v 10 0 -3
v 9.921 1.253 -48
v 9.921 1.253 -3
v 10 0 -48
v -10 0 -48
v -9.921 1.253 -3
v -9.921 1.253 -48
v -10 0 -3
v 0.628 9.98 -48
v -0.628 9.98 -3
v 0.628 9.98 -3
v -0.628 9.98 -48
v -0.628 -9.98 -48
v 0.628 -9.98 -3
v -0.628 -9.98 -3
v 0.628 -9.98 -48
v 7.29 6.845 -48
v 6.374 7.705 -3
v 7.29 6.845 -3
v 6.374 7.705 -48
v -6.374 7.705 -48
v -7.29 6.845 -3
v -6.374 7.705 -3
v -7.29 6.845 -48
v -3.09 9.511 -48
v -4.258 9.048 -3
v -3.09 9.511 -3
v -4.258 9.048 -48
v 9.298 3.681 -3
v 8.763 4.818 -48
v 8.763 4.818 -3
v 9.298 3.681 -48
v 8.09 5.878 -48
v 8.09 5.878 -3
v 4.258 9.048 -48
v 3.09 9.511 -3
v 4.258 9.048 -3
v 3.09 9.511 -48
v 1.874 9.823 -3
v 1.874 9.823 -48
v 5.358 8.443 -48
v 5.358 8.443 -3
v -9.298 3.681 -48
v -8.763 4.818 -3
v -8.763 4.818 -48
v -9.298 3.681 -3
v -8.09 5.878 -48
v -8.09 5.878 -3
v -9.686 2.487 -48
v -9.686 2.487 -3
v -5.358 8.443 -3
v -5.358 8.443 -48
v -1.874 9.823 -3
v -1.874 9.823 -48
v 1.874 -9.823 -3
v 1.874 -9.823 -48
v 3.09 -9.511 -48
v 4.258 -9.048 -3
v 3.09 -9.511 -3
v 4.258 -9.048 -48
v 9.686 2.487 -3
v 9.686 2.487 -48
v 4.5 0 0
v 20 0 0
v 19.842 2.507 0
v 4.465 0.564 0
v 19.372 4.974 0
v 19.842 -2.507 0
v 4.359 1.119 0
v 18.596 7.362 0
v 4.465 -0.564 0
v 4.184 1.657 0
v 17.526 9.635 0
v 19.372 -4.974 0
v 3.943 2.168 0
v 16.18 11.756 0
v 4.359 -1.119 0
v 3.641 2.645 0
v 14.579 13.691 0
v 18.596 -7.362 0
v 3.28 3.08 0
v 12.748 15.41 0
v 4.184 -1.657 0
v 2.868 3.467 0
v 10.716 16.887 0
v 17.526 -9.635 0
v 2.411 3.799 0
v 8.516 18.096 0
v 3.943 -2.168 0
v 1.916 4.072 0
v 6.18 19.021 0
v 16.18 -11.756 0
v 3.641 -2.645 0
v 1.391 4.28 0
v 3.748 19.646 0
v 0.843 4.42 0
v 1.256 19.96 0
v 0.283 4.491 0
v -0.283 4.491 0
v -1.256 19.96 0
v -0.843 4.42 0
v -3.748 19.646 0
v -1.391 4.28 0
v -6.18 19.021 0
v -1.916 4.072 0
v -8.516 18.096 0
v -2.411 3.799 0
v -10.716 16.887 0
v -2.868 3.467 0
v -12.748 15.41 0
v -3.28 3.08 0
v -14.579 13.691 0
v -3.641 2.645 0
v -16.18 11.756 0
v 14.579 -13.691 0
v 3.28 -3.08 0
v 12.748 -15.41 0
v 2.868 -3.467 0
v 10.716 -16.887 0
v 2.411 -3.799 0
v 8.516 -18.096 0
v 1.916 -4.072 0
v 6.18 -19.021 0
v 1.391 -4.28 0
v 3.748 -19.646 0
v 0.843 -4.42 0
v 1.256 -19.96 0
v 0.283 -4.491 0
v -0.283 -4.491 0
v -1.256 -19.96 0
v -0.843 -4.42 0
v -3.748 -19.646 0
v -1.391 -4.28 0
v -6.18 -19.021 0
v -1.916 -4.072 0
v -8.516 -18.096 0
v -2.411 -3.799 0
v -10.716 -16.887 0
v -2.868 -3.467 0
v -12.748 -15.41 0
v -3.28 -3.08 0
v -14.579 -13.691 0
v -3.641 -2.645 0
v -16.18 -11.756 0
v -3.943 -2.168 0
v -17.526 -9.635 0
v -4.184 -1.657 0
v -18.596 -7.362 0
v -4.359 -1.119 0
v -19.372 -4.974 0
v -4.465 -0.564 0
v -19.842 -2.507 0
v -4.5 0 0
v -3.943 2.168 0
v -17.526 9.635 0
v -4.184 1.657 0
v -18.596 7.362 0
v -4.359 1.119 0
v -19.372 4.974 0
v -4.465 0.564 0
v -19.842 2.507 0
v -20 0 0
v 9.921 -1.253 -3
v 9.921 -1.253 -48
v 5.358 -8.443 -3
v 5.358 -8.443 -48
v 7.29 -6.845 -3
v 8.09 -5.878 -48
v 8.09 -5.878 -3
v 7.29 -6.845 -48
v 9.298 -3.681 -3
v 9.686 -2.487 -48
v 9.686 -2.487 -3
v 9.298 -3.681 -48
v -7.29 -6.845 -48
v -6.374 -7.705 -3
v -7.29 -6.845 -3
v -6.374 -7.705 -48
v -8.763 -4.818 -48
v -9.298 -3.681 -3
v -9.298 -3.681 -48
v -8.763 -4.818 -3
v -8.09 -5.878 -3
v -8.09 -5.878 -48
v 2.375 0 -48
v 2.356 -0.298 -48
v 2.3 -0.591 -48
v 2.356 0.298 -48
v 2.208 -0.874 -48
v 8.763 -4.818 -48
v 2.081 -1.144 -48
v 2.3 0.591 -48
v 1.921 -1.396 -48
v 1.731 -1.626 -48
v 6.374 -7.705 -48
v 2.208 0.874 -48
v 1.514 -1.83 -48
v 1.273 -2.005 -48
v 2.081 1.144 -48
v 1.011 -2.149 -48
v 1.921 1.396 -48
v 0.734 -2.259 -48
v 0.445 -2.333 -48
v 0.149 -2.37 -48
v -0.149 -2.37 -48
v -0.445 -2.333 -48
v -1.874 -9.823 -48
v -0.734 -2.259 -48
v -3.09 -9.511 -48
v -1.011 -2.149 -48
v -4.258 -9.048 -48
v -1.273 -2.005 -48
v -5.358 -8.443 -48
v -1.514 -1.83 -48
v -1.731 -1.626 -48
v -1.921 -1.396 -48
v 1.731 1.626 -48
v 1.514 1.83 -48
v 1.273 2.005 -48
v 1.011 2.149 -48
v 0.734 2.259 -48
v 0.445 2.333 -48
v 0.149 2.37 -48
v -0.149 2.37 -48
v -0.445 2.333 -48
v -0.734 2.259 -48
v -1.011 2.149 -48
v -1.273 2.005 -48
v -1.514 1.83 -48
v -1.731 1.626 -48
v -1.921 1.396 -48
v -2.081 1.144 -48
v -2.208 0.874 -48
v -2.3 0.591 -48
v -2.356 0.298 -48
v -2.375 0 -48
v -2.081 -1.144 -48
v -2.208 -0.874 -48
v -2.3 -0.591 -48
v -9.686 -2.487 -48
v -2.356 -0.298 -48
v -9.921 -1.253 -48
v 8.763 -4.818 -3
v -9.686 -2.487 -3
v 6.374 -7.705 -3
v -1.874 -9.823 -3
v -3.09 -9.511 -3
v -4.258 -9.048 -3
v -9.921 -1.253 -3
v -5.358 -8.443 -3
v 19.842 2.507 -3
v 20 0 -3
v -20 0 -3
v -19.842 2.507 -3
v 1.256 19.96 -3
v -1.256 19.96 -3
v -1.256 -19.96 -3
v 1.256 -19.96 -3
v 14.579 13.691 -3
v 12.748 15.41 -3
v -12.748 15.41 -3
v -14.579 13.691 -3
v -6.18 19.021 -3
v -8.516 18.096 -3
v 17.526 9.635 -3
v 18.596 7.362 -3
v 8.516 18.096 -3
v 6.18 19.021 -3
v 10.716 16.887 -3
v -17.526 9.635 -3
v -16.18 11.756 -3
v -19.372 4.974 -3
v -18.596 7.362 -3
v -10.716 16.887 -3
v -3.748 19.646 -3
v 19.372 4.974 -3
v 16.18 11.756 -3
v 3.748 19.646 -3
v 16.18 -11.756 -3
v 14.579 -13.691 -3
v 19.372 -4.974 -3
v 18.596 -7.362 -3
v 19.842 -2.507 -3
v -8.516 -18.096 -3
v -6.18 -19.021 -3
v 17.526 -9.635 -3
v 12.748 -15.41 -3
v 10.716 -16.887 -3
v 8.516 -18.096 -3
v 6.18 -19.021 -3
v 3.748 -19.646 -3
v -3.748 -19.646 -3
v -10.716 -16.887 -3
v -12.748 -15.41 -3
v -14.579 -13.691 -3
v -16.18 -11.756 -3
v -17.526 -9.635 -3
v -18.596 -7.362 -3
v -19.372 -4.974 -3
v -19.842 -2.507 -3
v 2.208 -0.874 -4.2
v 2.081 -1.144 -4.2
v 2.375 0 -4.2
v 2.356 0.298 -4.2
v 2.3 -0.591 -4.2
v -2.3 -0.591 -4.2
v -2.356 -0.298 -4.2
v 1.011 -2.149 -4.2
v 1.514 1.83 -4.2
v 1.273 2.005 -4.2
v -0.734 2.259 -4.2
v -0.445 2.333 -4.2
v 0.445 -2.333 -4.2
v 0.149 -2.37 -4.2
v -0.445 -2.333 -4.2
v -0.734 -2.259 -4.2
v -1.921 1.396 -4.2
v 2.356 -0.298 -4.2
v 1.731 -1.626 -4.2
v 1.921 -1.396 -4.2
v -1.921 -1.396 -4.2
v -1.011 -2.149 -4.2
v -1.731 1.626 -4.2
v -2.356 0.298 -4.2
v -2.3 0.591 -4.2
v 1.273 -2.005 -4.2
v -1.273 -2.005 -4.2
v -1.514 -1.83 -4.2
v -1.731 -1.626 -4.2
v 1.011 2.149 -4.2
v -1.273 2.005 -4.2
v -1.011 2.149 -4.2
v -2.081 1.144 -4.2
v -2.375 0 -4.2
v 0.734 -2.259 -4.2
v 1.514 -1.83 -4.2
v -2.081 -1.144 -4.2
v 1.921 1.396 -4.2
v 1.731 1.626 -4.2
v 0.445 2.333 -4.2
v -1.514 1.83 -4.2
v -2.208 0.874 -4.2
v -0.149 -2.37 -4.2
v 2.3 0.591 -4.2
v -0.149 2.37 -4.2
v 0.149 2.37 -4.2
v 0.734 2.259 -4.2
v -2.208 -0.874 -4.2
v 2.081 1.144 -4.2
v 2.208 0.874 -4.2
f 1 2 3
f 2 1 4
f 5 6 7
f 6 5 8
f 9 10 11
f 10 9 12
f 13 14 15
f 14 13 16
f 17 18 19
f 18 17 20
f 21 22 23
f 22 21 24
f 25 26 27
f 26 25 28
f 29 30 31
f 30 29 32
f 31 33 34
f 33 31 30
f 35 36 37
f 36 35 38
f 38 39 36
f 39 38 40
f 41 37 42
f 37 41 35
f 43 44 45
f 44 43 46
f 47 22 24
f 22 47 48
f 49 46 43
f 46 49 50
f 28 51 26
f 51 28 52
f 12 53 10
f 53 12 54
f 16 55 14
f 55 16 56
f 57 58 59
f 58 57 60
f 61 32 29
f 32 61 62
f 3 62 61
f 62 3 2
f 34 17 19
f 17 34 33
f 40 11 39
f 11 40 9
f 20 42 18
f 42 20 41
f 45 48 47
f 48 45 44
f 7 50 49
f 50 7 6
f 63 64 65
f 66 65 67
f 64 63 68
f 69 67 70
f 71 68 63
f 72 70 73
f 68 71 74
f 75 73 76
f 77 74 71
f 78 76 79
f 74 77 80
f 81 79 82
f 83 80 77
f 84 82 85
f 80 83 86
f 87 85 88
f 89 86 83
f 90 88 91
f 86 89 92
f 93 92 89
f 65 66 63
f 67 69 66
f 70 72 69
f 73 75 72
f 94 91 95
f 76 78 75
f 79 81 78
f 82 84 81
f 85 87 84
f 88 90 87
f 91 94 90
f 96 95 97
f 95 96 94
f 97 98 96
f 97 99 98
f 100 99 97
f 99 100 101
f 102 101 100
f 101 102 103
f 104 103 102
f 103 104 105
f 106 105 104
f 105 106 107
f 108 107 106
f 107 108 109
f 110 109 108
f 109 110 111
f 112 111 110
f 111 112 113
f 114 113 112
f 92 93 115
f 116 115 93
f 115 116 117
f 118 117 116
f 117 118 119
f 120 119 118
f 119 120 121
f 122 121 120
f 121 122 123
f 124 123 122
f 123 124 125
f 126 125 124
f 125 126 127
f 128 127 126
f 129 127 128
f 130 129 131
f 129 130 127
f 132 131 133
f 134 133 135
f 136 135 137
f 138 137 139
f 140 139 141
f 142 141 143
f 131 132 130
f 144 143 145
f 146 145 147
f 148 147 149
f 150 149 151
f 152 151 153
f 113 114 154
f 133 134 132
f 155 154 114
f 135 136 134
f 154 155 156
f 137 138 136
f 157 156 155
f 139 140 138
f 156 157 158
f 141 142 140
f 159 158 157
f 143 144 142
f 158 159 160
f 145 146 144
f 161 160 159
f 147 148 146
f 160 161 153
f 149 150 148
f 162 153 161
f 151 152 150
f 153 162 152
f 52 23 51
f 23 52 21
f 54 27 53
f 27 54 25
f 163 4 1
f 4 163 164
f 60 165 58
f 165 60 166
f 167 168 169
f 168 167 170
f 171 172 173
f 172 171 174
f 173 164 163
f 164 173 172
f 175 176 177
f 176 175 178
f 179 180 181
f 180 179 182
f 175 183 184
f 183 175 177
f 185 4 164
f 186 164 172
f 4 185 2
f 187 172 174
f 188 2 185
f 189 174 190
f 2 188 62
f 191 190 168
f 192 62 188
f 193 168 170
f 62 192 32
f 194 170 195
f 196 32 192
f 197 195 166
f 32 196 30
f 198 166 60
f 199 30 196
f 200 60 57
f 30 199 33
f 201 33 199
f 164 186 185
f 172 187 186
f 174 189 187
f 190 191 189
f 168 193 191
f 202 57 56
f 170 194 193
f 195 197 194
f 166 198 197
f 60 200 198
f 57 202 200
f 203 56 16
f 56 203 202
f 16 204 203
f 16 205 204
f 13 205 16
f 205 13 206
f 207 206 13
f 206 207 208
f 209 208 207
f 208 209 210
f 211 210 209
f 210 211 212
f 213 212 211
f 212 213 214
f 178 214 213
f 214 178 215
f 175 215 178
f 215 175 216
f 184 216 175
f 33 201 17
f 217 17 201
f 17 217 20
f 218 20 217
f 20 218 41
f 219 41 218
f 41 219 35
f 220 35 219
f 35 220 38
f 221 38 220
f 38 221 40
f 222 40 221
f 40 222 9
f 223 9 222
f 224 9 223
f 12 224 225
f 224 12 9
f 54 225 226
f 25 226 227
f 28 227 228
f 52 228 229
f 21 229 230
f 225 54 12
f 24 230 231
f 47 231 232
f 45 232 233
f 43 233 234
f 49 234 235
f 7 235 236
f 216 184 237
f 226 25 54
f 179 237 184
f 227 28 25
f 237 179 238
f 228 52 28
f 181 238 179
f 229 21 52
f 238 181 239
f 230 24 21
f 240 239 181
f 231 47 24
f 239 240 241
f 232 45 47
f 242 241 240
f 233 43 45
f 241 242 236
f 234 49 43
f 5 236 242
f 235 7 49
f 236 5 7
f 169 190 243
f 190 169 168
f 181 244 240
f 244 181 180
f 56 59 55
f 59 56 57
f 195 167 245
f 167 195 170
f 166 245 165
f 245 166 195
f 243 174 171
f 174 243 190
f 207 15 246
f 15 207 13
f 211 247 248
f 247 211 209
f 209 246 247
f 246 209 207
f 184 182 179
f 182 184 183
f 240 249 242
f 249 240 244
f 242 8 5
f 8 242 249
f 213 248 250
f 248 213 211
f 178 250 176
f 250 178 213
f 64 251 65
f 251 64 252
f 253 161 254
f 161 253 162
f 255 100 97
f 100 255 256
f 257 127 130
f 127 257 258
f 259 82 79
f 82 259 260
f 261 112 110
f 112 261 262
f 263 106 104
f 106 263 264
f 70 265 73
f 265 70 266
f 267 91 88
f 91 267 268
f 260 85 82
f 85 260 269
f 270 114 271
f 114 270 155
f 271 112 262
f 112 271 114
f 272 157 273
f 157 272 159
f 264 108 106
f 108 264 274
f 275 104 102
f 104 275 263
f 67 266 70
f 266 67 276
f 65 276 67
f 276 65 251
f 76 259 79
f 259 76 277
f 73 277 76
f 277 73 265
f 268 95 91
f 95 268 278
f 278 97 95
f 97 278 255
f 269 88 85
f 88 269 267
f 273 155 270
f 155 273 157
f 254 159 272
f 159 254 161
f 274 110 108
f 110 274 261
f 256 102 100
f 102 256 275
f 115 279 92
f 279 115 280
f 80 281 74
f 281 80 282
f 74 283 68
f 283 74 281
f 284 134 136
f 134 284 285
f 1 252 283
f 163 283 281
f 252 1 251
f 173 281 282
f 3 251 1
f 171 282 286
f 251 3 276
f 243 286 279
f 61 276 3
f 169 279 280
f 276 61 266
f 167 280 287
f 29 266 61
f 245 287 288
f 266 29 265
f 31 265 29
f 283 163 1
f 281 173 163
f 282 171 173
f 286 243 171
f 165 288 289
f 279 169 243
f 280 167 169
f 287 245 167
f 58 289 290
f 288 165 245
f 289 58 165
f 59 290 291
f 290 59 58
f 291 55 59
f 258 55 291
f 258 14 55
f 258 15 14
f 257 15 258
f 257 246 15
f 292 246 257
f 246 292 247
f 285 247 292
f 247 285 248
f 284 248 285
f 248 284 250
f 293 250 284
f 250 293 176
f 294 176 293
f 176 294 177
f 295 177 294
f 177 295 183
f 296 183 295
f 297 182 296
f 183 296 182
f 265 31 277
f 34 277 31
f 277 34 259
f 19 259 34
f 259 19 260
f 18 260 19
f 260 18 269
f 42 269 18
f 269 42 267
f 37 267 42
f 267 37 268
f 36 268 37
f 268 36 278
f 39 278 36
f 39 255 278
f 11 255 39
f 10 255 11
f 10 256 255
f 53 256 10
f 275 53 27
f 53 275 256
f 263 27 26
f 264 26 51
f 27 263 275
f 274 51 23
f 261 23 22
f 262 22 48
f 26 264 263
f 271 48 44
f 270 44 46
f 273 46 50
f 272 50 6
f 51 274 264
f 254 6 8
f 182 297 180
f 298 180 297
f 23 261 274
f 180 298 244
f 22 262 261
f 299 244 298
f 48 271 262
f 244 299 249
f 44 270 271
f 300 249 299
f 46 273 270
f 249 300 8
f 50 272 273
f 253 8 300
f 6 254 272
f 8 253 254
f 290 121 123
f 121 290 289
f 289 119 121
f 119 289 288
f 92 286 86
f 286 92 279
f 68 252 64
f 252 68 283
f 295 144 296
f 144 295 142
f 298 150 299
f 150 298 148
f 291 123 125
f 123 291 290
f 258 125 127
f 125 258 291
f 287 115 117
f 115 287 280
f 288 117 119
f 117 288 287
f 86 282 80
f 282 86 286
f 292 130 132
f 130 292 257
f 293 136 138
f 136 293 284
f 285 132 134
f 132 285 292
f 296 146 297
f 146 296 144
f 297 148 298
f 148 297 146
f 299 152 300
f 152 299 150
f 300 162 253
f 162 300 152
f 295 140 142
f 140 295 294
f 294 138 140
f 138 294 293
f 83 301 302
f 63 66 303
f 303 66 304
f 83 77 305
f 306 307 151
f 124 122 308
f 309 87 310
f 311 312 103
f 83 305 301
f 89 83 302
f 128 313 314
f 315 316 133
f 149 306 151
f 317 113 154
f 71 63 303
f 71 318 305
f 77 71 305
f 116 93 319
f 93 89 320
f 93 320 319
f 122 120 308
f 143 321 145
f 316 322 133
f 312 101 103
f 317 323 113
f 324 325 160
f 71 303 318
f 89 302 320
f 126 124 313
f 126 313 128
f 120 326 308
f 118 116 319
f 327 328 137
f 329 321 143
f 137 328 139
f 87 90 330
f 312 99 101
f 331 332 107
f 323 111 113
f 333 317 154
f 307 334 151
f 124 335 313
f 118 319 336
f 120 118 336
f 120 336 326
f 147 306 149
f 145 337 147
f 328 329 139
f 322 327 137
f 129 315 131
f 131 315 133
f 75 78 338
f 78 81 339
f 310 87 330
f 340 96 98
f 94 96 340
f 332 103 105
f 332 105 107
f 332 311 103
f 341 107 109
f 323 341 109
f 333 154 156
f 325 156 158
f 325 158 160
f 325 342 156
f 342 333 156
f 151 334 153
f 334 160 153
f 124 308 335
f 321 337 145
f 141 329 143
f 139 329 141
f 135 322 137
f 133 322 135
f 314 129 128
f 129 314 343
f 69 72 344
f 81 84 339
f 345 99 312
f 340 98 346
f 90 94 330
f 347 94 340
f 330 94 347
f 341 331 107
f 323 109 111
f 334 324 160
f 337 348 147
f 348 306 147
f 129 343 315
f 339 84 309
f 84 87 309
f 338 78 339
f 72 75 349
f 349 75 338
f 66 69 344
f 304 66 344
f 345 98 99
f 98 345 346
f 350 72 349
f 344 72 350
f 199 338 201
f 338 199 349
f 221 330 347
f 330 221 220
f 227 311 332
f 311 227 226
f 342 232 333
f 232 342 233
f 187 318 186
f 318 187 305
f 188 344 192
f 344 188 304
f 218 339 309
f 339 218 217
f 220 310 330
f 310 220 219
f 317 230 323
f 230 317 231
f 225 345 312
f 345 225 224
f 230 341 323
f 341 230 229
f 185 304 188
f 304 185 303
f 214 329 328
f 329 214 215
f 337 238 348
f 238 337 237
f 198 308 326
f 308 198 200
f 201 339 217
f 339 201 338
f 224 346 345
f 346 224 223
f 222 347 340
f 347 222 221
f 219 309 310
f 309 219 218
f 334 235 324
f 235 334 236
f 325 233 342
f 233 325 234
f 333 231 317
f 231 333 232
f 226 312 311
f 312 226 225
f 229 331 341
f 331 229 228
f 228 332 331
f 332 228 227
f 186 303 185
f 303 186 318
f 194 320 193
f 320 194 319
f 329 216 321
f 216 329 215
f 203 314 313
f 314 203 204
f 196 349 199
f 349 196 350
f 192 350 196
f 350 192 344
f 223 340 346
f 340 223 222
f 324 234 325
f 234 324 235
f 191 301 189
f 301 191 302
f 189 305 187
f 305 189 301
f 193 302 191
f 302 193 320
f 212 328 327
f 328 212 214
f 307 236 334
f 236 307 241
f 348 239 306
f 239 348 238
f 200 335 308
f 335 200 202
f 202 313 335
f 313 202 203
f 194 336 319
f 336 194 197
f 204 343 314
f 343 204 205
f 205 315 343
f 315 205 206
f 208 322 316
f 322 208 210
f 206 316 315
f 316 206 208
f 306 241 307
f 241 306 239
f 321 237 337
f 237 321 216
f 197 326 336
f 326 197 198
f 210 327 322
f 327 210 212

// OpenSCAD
$fn = 50;


difference() {
	union() {
		translate(v = [0, 0, -48.0000000000]) {
			cylinder(h = 48, r = 10.0000000000);
		}
		translate(v = [0, 0, -3.0000000000]) {
			cylinder(h = 3, r = 20.0000000000);
		}
	}
	union() {
		translate(v = [0, 0, 0]) {
			rotate(a = [0, 0, 0]) {
				difference() {
					union() {
						#translate(v = [0, 0, -48.0000000000]) {
							cylinder(h = 48, r = 2.2500000000);
						}
						#translate(v = [0, 0, -4.2000000000]) {
							cylinder(h = 4.2000000000, r = 10.0000000000, r1 = 2.3750000000, r2 = 4.5000000000);
						}
						#translate(v = [0, 0, -48.0000000000]) {
							cylinder(h = 48, r = 2.3750000000);
						}
						#translate(v = [0, 0, -48.0000000000]) {
							cylinder(h = 48, r = 2.2500000000);
						}
					}
					union();
				}
			}
		}
	}
}
